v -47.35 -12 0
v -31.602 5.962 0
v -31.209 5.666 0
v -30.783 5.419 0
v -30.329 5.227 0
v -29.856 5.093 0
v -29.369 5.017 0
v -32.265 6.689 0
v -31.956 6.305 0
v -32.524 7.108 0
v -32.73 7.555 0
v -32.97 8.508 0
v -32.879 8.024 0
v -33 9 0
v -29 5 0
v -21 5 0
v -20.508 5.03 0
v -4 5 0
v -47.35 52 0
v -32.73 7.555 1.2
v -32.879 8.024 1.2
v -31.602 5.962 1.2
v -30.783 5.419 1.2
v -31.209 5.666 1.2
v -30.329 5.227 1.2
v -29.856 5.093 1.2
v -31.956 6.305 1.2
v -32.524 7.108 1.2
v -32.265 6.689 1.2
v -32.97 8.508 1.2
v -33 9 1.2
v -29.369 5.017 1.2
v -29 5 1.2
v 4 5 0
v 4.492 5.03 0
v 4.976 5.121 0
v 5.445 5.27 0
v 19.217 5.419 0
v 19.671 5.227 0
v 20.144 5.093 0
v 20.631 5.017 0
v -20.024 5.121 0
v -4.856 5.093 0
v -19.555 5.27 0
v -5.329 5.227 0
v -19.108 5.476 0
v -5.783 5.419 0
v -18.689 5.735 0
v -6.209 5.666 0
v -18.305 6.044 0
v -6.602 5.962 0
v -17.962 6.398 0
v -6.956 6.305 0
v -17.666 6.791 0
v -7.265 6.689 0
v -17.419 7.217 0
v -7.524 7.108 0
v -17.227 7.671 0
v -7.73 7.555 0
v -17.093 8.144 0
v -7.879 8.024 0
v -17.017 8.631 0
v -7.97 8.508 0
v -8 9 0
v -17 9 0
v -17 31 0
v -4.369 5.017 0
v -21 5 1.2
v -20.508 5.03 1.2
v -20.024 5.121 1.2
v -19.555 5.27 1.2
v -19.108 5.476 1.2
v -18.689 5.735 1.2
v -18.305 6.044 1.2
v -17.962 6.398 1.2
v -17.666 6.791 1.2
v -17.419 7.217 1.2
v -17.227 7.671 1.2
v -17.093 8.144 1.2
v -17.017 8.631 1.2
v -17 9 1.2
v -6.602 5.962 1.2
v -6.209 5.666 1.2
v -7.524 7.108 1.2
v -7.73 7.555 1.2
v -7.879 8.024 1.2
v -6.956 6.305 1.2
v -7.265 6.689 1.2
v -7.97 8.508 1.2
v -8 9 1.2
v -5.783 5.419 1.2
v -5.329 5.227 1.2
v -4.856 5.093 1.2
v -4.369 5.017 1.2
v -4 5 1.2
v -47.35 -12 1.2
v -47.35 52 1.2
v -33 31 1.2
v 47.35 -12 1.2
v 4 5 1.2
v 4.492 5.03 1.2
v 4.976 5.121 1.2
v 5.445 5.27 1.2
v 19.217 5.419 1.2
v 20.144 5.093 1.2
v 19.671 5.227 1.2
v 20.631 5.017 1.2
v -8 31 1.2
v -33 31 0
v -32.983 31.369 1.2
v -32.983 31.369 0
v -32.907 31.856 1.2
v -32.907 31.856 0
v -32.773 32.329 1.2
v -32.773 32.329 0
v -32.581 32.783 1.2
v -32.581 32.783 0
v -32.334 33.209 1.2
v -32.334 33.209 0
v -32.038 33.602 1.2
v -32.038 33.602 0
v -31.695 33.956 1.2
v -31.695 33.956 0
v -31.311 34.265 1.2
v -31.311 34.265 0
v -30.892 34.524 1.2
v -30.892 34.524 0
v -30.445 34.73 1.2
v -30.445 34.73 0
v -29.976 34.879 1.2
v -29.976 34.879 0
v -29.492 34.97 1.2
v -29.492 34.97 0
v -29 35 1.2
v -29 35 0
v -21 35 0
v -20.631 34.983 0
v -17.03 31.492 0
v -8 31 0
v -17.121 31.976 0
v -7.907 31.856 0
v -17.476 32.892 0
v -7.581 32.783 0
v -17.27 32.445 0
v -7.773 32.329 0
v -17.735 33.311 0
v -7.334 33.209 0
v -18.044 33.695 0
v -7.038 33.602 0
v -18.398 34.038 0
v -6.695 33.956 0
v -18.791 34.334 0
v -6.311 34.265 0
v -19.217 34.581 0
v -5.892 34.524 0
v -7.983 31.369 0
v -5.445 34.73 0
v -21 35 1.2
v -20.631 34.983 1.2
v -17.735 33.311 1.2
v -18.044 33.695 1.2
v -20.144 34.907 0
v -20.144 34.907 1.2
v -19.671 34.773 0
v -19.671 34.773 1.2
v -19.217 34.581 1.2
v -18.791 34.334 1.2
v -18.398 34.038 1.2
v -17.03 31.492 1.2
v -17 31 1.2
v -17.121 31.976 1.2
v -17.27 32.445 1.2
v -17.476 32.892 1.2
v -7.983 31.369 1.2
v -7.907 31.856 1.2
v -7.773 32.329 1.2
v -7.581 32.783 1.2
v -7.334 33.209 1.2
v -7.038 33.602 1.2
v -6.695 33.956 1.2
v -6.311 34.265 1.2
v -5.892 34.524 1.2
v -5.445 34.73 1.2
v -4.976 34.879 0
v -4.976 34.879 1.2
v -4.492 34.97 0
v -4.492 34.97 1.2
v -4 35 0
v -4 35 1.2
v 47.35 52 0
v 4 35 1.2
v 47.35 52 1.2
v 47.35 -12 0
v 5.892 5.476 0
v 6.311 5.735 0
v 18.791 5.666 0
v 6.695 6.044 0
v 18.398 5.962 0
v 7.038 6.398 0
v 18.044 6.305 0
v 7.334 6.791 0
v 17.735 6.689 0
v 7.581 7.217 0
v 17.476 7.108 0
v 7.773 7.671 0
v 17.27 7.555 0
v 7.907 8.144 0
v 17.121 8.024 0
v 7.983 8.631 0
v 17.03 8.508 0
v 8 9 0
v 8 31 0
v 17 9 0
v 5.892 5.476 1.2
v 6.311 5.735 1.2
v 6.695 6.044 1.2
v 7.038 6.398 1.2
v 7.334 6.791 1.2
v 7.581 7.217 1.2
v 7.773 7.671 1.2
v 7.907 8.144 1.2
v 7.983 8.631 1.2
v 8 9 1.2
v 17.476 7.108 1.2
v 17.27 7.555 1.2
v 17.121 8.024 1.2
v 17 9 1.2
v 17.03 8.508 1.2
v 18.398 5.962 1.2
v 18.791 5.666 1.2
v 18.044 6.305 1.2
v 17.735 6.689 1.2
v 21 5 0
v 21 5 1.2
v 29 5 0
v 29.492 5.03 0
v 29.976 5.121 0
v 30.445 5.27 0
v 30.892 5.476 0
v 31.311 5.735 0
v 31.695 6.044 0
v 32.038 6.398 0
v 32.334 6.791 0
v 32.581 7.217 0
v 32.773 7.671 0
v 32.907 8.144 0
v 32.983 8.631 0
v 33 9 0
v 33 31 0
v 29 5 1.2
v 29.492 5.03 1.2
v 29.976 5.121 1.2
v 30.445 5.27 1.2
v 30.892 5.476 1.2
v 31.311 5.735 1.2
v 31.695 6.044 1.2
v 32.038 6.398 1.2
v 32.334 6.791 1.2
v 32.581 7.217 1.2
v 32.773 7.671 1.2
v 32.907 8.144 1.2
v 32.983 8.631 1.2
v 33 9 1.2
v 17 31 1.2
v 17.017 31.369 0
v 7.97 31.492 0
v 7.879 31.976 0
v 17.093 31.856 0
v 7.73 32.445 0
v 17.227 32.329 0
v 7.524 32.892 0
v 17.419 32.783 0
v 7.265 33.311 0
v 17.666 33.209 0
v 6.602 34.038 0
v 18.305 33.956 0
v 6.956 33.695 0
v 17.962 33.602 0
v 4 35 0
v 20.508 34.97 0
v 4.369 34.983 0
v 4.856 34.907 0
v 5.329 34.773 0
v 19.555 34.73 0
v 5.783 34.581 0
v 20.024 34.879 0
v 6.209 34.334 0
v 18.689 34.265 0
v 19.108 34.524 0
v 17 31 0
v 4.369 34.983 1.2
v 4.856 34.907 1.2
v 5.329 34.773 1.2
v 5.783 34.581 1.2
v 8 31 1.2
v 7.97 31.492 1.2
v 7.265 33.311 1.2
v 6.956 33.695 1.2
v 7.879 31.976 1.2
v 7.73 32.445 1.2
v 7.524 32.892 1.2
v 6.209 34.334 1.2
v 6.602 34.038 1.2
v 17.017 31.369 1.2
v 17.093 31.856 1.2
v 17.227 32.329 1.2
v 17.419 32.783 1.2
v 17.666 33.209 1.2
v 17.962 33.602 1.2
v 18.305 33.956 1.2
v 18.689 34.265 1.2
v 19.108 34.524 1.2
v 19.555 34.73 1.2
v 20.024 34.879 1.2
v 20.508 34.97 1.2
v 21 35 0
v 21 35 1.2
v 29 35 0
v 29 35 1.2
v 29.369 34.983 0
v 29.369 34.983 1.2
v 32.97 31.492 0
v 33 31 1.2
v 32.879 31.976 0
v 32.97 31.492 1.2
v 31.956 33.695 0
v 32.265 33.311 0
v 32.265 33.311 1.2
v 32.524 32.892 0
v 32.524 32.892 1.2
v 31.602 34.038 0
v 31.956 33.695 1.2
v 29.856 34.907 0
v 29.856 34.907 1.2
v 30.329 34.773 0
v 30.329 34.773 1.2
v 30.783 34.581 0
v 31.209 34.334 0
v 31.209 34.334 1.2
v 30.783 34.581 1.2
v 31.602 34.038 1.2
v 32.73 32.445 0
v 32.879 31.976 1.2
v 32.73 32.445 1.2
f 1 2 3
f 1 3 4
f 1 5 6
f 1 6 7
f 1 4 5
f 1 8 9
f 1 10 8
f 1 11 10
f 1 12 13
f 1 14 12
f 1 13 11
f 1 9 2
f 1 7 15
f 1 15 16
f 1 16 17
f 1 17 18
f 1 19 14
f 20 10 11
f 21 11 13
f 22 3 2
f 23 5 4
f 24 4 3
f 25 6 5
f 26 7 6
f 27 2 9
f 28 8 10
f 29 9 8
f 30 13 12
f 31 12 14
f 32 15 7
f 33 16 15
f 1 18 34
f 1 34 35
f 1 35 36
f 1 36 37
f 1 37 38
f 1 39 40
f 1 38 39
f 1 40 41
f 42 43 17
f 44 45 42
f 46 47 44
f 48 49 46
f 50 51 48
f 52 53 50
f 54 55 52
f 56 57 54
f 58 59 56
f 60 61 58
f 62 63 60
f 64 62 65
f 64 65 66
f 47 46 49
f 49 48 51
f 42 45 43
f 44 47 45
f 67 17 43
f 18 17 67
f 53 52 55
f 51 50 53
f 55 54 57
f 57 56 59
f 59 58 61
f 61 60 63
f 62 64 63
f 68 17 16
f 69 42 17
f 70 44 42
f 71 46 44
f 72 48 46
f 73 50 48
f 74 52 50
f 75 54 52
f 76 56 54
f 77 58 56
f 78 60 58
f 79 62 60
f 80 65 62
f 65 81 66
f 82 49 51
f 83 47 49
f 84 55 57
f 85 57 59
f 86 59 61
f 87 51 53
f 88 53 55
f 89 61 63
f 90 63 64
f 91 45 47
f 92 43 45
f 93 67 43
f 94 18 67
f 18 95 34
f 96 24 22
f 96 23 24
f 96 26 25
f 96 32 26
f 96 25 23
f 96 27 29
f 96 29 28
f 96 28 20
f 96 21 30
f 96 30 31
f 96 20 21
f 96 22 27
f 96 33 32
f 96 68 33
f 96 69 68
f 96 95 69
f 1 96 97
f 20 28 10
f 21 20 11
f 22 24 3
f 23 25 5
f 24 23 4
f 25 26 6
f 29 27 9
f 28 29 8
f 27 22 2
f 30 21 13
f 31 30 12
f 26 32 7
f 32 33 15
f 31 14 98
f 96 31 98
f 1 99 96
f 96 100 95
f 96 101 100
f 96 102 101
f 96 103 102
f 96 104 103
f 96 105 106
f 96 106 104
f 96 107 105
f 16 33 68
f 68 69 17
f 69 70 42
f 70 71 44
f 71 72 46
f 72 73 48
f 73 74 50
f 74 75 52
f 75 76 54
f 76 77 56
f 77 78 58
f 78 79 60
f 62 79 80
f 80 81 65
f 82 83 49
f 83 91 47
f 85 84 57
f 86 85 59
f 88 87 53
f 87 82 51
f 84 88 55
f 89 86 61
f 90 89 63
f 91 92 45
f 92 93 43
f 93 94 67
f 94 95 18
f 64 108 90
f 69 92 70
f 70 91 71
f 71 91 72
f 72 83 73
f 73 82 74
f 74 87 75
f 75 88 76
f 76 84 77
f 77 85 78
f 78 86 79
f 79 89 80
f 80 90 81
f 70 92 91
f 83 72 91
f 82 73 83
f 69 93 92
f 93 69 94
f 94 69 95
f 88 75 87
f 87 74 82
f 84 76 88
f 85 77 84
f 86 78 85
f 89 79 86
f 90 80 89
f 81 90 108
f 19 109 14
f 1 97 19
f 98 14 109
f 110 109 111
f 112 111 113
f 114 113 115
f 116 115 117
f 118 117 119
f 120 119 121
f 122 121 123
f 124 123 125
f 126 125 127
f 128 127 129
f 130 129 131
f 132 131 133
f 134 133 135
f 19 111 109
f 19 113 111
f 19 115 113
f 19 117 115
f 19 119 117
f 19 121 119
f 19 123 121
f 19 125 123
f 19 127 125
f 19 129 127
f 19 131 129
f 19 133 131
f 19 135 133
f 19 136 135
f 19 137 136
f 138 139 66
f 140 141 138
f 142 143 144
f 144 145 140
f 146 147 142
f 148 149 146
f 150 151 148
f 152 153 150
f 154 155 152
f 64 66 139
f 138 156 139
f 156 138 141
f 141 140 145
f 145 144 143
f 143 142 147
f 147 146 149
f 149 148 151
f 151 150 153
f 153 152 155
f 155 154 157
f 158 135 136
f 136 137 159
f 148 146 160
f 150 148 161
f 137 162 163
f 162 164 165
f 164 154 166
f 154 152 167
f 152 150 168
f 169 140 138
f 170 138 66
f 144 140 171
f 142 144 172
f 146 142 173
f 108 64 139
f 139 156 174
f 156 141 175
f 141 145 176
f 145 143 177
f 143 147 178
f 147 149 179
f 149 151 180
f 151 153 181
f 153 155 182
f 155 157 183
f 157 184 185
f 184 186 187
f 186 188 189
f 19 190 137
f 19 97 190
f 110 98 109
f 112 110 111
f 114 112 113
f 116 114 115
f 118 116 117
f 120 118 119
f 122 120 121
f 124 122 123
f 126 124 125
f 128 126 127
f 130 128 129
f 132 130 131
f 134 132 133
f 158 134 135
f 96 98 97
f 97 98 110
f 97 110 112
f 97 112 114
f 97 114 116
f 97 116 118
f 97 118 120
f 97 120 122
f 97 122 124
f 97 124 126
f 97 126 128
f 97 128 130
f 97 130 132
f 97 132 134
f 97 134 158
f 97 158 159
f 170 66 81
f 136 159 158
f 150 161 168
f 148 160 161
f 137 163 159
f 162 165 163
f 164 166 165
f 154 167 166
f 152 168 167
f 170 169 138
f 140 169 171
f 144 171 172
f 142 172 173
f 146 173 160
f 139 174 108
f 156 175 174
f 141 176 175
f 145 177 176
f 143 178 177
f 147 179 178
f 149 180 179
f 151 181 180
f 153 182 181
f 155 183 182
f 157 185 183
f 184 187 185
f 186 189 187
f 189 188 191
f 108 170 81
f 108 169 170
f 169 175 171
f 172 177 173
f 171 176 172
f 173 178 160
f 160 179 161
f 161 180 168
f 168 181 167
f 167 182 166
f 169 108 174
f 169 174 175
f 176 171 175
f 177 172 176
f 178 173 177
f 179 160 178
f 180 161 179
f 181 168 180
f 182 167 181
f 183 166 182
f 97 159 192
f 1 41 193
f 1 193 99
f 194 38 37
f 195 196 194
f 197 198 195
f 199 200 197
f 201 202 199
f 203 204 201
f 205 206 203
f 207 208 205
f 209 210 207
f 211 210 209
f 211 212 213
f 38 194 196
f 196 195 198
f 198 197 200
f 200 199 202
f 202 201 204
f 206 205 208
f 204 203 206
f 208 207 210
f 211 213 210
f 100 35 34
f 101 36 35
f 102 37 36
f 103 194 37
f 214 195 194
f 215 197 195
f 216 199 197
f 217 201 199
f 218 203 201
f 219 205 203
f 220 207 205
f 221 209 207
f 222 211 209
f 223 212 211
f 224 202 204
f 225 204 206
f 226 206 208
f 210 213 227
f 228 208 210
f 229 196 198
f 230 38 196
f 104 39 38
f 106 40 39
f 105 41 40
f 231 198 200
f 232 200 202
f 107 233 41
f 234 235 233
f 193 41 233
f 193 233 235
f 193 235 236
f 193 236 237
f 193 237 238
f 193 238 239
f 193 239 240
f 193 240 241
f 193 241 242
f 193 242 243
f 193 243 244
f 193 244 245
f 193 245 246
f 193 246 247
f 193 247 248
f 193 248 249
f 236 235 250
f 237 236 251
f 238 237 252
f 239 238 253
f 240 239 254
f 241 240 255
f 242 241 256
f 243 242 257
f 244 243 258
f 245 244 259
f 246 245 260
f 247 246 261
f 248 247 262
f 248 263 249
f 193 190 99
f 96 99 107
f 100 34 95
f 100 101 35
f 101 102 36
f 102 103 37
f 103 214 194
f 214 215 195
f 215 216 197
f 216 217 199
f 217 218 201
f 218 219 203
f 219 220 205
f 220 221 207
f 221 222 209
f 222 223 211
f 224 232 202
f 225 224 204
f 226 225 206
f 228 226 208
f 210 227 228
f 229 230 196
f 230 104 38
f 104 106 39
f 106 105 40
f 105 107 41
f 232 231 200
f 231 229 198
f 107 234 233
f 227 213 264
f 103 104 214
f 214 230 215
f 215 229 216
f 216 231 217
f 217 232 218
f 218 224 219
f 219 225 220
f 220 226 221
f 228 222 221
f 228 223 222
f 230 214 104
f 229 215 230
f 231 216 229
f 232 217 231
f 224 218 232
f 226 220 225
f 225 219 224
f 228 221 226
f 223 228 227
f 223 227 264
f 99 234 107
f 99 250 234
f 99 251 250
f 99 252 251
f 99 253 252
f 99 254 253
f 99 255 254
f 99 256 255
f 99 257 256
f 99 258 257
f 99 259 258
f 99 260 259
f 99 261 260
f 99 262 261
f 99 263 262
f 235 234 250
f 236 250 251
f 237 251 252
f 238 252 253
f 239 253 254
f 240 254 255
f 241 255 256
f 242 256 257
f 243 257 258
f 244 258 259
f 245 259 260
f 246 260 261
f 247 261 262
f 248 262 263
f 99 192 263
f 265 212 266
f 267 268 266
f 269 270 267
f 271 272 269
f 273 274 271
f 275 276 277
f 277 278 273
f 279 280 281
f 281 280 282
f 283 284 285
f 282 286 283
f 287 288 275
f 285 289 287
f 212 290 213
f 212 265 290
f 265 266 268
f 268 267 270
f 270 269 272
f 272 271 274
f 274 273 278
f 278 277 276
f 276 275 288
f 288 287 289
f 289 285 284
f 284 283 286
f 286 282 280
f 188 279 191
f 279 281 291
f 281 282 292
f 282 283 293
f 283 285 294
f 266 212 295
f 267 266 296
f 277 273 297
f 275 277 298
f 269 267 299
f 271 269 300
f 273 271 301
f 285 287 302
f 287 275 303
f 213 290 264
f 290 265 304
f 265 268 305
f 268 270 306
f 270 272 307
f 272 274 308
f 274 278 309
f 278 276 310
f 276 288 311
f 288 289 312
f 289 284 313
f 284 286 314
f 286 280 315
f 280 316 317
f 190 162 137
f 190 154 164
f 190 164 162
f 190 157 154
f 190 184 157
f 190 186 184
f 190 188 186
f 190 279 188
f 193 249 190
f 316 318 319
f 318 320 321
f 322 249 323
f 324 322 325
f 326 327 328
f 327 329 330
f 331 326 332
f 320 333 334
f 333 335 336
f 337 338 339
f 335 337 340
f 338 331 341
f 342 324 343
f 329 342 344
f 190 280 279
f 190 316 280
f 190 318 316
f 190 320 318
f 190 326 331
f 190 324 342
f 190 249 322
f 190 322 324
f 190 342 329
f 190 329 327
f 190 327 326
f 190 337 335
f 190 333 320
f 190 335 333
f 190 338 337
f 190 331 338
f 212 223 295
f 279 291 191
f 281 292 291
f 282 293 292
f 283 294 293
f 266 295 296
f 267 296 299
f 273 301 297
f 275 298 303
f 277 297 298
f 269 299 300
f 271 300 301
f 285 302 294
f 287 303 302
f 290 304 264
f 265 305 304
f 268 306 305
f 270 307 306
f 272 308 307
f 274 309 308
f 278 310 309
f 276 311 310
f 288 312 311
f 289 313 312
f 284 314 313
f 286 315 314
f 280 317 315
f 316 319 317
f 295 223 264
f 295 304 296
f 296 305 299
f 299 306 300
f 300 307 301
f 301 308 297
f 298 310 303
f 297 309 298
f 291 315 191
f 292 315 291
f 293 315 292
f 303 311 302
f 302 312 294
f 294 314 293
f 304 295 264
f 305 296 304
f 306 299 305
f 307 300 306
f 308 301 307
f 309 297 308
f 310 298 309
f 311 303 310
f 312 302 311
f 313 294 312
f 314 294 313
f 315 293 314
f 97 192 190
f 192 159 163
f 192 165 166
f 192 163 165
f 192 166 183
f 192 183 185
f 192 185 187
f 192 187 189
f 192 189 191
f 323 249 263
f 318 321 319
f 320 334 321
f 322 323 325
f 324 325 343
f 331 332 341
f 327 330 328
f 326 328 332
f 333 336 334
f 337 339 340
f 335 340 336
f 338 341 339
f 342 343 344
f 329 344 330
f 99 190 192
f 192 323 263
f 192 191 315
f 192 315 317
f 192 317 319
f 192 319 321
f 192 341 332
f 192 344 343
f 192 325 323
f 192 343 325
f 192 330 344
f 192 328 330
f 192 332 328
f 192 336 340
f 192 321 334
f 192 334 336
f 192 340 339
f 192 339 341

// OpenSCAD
// file: lib/lib.scad
// Shared helpers. Include AFTER params.scad (needs TOL, M3_* etc.).
$fa = 4; $fs = 0.5;

module rrect(size, r) {            // 2D rounded rectangle, centred
    r2 = min(r, min(size[0], size[1]) / 2 - 0.001);
    offset(r = r2) square([size[0] - 2 * r2, size[1] - 2 * r2], center = true);
}
module rbox(size, r, center_xy = true) {   // box with rounded vertical edges
    translate(center_xy ? [0, 0, 0] : [size[0] / 2, size[1] / 2, 0])
        linear_extrude(size[2]) rrect([size[0], size[1]], r);
}
module rbox_at(x0, x1, y0, y1, z0, z1, r = 0.01) {
    translate([(x0 + x1) / 2, (y0 + y1) / 2, z0]) rbox([x1 - x0, y1 - y0, z1 - z0], r);
}
module box_at(x0, x1, y0, y1, z0, z1) { translate([x0, y0, z0]) cube([x1 - x0, y1 - y0, z1 - z0]); }

module ring(ro, ri, h) { difference() { cylinder(r = ro, h = h); translate([0, 0, -1]) cylinder(r = ri, h = h + 2); } }
module ring_sector(ro, ri, h, a0, a1) {
    intersection() {
        ring(ro, ri, h);
        linear_extrude(h) polygon(concat([[0, 0]], [for (a = [a0 : (a1 - a0) / 24 : a1]) 2 * ro * [cos(a), sin(a)]]));
    }
}
// teardrop hole along an axis lying horizontal (axis = Y after rotation), printable w/o support
module teardrop2d(d) { union() { circle(d = d); rotate(45) square(d / 2); } }
// vertical heat-set insert hole, opening at z=0 going +z (depth l)
module insert_hole(l = M3_INSERT_L) { translate([0, 0, -EPS]) cylinder(d = M3_INSERT_D, h = l + EPS); }
module m3_clear(l) { translate([0, 0, -EPS]) cylinder(d = M3_CLEAR, h = l + 2 * EPS); }
module m3_csk(l) {  // countersunk clearance from z=0 upward, head at z=0 side
    translate([0, 0, -EPS]) { cylinder(d = M3_CLEAR, h = l + 2 * EPS); cylinder(d1 = 6.4, d2 = M3_CLEAR, h = 1.7); }
}
module card2d() { rrect([CARD_L, CARD_W], CARD_R); }
module card_at(cy, z) { translate([0, cy, z]) linear_extrude(CARD_T) card2d(); }

// ---- gears ----
function _inv(a) = tan(a) - a * PI_ / 180;           // involute function, a in deg
function _invpt(rb, r, ang0, s) = let(al = acos(rb / r), th = ang0 - s * (_inv(al) * 180 / PI_)) [r * cos(th), r * sin(th)];
module involute_gear2d(m, z, pa = 20, clearance = 0.05) {
    rp = m * z / 2; rb = rp * cos(pa); ra = rp + m - clearance; rf = rp - 1.25 * m;
    half = 90 / z + _inv(pa) * 180 / PI_;            // tooth half-angle at base (deg)
    n = 8;
    rs = [for (i = [0 : n]) max(rb, rf) + (ra - max(rb, rf)) * i / n];
    union() {
        circle(r = rf, $fn = z * 4);
        for (k = [0 : z - 1]) rotate(k * 360 / z) polygon(concat(
            [[rf * cos(-half), rf * sin(-half)]],
            [for (r = rs) let(p = _invpt(rb, r, half, 1)) [p[0], -p[1]]],
            [for (i = [n : -1 : 0]) _invpt(rb, rs[i], half, 1)],
            [[rf * cos(half), rf * sin(half)]]));
    }
}
// straight gear rack (2D in XY: teeth along +x, pointing -y, pitch line at y=0)
module gear_rack2d(m, len, back = 3) {
    p = PI_ * m; ad = m; de = 1.25 * m; t = tan(20);
    n = ceil(len / p) + 1;
    intersection() {
        union() {
            translate([0, de]) square([len, back]);
            for (i = [0 : n]) translate([i * p - p / 4, 0]) polygon([
                [-(p / 4 + de * t), de + 0.01], [p / 4 + de * t + 0.01, de + 0.01],
                [p / 4 - ad * t, -ad], [-(p / 4 - ad * t), -ad] ]);
        }
        translate([0, -ad - 1]) square([len, ad + de + back + 2]);
    }
}
// GT2 belt-tooth profile ring (teeth outward), 2D
module gt2_ring2d(n, r_land, ri) {
    union() {
        difference() { circle(r = r_land + 0.01, $fn = n * 2); circle(r = ri, $fn = n * 2); }
        for (k = [0 : n - 1]) rotate(k * 360 / n)
            translate([r_land, 0]) hull() { translate([-0.2, 0]) square([0.2, 1.0], center = true); translate([0.25, 0]) circle(r = 0.5, $fn = 12); }
    }
}
// main file
// Rack top plate, glued into the comb rebates above slot 51. Print: flat.
include <params.scad>
include <lib/lib.scad>
module rack_top_plate() translate([0, 0, RACK_Z_MIN]) difference() {
    box_at(-COMB_IN - PLATE_REBATE + 0.1, COMB_IN + PLATE_REBATE - 0.1, RACK_Y0, RACK_Y1, shelf_z(SHELF_COUNT - 1) + SHELF_GAP, RACK_H);
    for (x = [-25, 0, 25]) translate([x, RACK_YC, 0]) linear_extrude(200) rrect([16, 30], 4);
}
module rack_top_plate_print() translate([0, 0, -RACK_Z_MIN - shelf_z(SHELF_COUNT - 1) - SHELF_GAP]) rack_top_plate();
rack_top_plate_print();
